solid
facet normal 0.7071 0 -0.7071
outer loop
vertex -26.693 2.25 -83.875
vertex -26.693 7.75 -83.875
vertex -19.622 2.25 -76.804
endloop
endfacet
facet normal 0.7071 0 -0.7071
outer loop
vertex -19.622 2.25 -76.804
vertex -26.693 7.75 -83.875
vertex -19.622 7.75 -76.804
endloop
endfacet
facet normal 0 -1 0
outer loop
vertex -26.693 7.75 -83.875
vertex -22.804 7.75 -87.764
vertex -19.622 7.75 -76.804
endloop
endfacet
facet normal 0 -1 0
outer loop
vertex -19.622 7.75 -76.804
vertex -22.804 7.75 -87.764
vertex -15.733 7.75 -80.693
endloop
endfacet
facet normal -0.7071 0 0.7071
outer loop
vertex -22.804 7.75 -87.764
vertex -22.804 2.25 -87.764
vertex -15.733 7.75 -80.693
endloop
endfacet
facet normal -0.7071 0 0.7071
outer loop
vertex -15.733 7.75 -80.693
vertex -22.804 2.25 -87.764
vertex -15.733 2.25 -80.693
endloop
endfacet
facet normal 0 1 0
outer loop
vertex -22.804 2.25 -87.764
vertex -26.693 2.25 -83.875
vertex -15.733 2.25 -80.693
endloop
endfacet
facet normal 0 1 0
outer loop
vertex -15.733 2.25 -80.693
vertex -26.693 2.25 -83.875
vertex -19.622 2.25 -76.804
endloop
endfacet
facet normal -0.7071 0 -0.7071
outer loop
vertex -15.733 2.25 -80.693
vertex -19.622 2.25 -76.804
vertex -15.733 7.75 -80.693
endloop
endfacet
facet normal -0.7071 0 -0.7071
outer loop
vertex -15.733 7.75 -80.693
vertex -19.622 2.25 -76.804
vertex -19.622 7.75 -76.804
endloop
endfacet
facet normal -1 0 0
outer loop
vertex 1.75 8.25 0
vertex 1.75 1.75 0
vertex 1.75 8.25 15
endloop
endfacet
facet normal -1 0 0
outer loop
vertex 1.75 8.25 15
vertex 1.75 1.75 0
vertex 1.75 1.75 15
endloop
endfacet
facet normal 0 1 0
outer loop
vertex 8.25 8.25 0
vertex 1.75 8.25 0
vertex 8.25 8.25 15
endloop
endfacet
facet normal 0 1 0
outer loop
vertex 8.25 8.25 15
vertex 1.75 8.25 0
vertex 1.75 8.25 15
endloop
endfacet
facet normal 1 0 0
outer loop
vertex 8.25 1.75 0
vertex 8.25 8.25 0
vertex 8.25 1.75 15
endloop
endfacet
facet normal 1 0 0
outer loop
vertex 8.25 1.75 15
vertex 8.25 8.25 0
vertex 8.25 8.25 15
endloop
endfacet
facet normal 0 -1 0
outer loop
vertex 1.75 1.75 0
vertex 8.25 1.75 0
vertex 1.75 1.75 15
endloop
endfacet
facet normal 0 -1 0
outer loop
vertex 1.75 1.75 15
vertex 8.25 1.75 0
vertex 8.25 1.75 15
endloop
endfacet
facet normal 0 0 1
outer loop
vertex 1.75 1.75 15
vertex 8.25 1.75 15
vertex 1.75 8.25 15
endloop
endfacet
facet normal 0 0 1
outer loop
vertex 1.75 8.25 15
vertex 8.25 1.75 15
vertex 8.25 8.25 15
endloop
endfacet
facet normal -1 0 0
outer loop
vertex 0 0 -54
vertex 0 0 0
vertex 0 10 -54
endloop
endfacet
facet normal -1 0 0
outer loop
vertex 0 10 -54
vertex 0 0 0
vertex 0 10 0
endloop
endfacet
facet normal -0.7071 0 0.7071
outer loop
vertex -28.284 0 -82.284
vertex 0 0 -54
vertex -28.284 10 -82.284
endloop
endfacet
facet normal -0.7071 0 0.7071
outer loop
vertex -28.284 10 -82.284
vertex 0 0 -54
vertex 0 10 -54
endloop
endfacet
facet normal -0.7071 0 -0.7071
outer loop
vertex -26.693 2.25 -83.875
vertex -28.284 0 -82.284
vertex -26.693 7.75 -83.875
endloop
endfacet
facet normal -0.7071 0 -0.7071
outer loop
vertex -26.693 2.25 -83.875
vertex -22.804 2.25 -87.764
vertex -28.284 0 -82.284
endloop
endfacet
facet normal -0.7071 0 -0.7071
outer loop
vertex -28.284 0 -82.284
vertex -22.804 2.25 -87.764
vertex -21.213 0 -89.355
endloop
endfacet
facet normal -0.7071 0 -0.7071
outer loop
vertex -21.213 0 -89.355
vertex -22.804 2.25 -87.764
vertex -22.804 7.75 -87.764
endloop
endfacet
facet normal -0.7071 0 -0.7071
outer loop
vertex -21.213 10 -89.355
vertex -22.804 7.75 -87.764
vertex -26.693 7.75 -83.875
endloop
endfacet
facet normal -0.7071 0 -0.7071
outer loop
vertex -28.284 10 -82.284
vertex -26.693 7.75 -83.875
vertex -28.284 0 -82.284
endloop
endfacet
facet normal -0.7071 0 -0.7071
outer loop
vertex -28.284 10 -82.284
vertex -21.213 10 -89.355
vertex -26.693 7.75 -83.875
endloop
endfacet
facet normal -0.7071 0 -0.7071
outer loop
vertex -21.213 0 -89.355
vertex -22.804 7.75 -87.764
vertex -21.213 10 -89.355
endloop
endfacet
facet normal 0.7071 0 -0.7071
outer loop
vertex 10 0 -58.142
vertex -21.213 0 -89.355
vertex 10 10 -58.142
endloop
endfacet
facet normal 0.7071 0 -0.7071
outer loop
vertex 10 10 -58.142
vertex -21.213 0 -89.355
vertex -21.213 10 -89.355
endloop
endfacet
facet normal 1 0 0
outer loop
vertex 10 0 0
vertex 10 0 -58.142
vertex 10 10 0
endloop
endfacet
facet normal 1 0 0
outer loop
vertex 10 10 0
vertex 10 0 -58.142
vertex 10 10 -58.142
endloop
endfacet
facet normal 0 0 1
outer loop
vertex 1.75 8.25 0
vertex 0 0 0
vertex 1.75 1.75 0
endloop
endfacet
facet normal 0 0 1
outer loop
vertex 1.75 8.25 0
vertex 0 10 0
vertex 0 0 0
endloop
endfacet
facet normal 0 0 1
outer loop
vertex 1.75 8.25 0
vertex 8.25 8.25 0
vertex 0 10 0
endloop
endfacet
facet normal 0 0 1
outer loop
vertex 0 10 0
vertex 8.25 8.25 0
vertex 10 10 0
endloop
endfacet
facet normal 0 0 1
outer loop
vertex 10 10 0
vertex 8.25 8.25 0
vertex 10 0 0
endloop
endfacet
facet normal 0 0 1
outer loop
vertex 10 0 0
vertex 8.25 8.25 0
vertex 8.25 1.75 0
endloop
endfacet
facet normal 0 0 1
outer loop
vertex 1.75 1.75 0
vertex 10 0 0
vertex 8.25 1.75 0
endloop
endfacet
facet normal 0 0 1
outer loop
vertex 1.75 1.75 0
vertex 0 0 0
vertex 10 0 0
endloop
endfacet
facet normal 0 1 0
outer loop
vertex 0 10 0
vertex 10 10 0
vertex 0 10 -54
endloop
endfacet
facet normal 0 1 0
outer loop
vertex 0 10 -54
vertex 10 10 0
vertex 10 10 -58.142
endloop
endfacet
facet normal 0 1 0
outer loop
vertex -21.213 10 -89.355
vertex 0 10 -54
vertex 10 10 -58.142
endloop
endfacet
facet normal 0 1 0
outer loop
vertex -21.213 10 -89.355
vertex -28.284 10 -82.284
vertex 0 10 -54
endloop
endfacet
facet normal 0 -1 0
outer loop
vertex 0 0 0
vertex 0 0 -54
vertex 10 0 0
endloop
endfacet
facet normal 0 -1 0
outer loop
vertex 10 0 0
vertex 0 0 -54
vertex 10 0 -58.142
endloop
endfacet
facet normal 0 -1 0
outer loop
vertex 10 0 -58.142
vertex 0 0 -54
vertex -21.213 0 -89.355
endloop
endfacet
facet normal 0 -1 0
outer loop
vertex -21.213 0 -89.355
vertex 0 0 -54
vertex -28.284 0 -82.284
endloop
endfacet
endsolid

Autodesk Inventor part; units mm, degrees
ref_plane "YZ Plane" through (0, 0, 0) normal (1, 0, 0) x (0, 1, 0)
ref_plane "XZ Plane" through (0, 0, 0) normal (0, 1, 0) x (-1, 0, 0)
ref_plane "XY Plane" through (0, 0, 0) normal (0, 0, 1) x (1, 0, 0)
sketch "Sketch1" plane through (0, 0, 0) normal (0, 1, 0) x (-1, 0, 0)
  line L0 (0, 0) -> (-10, 0)
  line L1 (-10, 0) -> (-10, -54)
  line L2 (0, -54) -> (0, 0)
  line L3 (0, -54) -> (28.2843, -82.2843)
  line L4 (0, -54) -> (40, -54) construction
  line L5 (28.2843, -82.2843) -> (21.2132, -89.3553)
  line L6 (21.2132, -89.3553) -> (-10, -58.1421)
  line L7 (-10, -58.1421) -> (-10, -54)
extrude "Extrusion1" add sketch "Sketch1" along normal blind 10
sketch "Sketch2" plane through (0, 0, 0) normal (0, 0, 1) x (1, 0, 0)
  line L0 (1.75, 1.75) -> (8.25, 1.75)
  line L1 (8.25, 1.75) -> (8.25, 8.25)
  line L2 (8.25, 8.25) -> (1.75, 8.25)
  line L3 (1.75, 8.25) -> (1.75, 1.75)
  point P0 (0, 0)
extrude "Extrusion2" add sketch "Sketch2" along normal blind 15
sketch "Sketch3" plane through (-28.2843, 0, -82.2843) normal (-0.7071, 0, -0.7071) x (-0.7071, 0, 0.7071)
  line L0 (-2.25, 2.25) -> (-7.75, 2.25)
  line L1 (-7.75, 2.25) -> (-7.75, 7.75)
  line L2 (-7.75, 7.75) -> (-2.25, 7.75)
  line L3 (-2.25, 7.75) -> (-2.25, 2.25)
  point P0 (38.1838, 0)
extrude "Extrusion3" cut sketch "Sketch3" against normal blind 10
properties part number "Stalk_v2"
